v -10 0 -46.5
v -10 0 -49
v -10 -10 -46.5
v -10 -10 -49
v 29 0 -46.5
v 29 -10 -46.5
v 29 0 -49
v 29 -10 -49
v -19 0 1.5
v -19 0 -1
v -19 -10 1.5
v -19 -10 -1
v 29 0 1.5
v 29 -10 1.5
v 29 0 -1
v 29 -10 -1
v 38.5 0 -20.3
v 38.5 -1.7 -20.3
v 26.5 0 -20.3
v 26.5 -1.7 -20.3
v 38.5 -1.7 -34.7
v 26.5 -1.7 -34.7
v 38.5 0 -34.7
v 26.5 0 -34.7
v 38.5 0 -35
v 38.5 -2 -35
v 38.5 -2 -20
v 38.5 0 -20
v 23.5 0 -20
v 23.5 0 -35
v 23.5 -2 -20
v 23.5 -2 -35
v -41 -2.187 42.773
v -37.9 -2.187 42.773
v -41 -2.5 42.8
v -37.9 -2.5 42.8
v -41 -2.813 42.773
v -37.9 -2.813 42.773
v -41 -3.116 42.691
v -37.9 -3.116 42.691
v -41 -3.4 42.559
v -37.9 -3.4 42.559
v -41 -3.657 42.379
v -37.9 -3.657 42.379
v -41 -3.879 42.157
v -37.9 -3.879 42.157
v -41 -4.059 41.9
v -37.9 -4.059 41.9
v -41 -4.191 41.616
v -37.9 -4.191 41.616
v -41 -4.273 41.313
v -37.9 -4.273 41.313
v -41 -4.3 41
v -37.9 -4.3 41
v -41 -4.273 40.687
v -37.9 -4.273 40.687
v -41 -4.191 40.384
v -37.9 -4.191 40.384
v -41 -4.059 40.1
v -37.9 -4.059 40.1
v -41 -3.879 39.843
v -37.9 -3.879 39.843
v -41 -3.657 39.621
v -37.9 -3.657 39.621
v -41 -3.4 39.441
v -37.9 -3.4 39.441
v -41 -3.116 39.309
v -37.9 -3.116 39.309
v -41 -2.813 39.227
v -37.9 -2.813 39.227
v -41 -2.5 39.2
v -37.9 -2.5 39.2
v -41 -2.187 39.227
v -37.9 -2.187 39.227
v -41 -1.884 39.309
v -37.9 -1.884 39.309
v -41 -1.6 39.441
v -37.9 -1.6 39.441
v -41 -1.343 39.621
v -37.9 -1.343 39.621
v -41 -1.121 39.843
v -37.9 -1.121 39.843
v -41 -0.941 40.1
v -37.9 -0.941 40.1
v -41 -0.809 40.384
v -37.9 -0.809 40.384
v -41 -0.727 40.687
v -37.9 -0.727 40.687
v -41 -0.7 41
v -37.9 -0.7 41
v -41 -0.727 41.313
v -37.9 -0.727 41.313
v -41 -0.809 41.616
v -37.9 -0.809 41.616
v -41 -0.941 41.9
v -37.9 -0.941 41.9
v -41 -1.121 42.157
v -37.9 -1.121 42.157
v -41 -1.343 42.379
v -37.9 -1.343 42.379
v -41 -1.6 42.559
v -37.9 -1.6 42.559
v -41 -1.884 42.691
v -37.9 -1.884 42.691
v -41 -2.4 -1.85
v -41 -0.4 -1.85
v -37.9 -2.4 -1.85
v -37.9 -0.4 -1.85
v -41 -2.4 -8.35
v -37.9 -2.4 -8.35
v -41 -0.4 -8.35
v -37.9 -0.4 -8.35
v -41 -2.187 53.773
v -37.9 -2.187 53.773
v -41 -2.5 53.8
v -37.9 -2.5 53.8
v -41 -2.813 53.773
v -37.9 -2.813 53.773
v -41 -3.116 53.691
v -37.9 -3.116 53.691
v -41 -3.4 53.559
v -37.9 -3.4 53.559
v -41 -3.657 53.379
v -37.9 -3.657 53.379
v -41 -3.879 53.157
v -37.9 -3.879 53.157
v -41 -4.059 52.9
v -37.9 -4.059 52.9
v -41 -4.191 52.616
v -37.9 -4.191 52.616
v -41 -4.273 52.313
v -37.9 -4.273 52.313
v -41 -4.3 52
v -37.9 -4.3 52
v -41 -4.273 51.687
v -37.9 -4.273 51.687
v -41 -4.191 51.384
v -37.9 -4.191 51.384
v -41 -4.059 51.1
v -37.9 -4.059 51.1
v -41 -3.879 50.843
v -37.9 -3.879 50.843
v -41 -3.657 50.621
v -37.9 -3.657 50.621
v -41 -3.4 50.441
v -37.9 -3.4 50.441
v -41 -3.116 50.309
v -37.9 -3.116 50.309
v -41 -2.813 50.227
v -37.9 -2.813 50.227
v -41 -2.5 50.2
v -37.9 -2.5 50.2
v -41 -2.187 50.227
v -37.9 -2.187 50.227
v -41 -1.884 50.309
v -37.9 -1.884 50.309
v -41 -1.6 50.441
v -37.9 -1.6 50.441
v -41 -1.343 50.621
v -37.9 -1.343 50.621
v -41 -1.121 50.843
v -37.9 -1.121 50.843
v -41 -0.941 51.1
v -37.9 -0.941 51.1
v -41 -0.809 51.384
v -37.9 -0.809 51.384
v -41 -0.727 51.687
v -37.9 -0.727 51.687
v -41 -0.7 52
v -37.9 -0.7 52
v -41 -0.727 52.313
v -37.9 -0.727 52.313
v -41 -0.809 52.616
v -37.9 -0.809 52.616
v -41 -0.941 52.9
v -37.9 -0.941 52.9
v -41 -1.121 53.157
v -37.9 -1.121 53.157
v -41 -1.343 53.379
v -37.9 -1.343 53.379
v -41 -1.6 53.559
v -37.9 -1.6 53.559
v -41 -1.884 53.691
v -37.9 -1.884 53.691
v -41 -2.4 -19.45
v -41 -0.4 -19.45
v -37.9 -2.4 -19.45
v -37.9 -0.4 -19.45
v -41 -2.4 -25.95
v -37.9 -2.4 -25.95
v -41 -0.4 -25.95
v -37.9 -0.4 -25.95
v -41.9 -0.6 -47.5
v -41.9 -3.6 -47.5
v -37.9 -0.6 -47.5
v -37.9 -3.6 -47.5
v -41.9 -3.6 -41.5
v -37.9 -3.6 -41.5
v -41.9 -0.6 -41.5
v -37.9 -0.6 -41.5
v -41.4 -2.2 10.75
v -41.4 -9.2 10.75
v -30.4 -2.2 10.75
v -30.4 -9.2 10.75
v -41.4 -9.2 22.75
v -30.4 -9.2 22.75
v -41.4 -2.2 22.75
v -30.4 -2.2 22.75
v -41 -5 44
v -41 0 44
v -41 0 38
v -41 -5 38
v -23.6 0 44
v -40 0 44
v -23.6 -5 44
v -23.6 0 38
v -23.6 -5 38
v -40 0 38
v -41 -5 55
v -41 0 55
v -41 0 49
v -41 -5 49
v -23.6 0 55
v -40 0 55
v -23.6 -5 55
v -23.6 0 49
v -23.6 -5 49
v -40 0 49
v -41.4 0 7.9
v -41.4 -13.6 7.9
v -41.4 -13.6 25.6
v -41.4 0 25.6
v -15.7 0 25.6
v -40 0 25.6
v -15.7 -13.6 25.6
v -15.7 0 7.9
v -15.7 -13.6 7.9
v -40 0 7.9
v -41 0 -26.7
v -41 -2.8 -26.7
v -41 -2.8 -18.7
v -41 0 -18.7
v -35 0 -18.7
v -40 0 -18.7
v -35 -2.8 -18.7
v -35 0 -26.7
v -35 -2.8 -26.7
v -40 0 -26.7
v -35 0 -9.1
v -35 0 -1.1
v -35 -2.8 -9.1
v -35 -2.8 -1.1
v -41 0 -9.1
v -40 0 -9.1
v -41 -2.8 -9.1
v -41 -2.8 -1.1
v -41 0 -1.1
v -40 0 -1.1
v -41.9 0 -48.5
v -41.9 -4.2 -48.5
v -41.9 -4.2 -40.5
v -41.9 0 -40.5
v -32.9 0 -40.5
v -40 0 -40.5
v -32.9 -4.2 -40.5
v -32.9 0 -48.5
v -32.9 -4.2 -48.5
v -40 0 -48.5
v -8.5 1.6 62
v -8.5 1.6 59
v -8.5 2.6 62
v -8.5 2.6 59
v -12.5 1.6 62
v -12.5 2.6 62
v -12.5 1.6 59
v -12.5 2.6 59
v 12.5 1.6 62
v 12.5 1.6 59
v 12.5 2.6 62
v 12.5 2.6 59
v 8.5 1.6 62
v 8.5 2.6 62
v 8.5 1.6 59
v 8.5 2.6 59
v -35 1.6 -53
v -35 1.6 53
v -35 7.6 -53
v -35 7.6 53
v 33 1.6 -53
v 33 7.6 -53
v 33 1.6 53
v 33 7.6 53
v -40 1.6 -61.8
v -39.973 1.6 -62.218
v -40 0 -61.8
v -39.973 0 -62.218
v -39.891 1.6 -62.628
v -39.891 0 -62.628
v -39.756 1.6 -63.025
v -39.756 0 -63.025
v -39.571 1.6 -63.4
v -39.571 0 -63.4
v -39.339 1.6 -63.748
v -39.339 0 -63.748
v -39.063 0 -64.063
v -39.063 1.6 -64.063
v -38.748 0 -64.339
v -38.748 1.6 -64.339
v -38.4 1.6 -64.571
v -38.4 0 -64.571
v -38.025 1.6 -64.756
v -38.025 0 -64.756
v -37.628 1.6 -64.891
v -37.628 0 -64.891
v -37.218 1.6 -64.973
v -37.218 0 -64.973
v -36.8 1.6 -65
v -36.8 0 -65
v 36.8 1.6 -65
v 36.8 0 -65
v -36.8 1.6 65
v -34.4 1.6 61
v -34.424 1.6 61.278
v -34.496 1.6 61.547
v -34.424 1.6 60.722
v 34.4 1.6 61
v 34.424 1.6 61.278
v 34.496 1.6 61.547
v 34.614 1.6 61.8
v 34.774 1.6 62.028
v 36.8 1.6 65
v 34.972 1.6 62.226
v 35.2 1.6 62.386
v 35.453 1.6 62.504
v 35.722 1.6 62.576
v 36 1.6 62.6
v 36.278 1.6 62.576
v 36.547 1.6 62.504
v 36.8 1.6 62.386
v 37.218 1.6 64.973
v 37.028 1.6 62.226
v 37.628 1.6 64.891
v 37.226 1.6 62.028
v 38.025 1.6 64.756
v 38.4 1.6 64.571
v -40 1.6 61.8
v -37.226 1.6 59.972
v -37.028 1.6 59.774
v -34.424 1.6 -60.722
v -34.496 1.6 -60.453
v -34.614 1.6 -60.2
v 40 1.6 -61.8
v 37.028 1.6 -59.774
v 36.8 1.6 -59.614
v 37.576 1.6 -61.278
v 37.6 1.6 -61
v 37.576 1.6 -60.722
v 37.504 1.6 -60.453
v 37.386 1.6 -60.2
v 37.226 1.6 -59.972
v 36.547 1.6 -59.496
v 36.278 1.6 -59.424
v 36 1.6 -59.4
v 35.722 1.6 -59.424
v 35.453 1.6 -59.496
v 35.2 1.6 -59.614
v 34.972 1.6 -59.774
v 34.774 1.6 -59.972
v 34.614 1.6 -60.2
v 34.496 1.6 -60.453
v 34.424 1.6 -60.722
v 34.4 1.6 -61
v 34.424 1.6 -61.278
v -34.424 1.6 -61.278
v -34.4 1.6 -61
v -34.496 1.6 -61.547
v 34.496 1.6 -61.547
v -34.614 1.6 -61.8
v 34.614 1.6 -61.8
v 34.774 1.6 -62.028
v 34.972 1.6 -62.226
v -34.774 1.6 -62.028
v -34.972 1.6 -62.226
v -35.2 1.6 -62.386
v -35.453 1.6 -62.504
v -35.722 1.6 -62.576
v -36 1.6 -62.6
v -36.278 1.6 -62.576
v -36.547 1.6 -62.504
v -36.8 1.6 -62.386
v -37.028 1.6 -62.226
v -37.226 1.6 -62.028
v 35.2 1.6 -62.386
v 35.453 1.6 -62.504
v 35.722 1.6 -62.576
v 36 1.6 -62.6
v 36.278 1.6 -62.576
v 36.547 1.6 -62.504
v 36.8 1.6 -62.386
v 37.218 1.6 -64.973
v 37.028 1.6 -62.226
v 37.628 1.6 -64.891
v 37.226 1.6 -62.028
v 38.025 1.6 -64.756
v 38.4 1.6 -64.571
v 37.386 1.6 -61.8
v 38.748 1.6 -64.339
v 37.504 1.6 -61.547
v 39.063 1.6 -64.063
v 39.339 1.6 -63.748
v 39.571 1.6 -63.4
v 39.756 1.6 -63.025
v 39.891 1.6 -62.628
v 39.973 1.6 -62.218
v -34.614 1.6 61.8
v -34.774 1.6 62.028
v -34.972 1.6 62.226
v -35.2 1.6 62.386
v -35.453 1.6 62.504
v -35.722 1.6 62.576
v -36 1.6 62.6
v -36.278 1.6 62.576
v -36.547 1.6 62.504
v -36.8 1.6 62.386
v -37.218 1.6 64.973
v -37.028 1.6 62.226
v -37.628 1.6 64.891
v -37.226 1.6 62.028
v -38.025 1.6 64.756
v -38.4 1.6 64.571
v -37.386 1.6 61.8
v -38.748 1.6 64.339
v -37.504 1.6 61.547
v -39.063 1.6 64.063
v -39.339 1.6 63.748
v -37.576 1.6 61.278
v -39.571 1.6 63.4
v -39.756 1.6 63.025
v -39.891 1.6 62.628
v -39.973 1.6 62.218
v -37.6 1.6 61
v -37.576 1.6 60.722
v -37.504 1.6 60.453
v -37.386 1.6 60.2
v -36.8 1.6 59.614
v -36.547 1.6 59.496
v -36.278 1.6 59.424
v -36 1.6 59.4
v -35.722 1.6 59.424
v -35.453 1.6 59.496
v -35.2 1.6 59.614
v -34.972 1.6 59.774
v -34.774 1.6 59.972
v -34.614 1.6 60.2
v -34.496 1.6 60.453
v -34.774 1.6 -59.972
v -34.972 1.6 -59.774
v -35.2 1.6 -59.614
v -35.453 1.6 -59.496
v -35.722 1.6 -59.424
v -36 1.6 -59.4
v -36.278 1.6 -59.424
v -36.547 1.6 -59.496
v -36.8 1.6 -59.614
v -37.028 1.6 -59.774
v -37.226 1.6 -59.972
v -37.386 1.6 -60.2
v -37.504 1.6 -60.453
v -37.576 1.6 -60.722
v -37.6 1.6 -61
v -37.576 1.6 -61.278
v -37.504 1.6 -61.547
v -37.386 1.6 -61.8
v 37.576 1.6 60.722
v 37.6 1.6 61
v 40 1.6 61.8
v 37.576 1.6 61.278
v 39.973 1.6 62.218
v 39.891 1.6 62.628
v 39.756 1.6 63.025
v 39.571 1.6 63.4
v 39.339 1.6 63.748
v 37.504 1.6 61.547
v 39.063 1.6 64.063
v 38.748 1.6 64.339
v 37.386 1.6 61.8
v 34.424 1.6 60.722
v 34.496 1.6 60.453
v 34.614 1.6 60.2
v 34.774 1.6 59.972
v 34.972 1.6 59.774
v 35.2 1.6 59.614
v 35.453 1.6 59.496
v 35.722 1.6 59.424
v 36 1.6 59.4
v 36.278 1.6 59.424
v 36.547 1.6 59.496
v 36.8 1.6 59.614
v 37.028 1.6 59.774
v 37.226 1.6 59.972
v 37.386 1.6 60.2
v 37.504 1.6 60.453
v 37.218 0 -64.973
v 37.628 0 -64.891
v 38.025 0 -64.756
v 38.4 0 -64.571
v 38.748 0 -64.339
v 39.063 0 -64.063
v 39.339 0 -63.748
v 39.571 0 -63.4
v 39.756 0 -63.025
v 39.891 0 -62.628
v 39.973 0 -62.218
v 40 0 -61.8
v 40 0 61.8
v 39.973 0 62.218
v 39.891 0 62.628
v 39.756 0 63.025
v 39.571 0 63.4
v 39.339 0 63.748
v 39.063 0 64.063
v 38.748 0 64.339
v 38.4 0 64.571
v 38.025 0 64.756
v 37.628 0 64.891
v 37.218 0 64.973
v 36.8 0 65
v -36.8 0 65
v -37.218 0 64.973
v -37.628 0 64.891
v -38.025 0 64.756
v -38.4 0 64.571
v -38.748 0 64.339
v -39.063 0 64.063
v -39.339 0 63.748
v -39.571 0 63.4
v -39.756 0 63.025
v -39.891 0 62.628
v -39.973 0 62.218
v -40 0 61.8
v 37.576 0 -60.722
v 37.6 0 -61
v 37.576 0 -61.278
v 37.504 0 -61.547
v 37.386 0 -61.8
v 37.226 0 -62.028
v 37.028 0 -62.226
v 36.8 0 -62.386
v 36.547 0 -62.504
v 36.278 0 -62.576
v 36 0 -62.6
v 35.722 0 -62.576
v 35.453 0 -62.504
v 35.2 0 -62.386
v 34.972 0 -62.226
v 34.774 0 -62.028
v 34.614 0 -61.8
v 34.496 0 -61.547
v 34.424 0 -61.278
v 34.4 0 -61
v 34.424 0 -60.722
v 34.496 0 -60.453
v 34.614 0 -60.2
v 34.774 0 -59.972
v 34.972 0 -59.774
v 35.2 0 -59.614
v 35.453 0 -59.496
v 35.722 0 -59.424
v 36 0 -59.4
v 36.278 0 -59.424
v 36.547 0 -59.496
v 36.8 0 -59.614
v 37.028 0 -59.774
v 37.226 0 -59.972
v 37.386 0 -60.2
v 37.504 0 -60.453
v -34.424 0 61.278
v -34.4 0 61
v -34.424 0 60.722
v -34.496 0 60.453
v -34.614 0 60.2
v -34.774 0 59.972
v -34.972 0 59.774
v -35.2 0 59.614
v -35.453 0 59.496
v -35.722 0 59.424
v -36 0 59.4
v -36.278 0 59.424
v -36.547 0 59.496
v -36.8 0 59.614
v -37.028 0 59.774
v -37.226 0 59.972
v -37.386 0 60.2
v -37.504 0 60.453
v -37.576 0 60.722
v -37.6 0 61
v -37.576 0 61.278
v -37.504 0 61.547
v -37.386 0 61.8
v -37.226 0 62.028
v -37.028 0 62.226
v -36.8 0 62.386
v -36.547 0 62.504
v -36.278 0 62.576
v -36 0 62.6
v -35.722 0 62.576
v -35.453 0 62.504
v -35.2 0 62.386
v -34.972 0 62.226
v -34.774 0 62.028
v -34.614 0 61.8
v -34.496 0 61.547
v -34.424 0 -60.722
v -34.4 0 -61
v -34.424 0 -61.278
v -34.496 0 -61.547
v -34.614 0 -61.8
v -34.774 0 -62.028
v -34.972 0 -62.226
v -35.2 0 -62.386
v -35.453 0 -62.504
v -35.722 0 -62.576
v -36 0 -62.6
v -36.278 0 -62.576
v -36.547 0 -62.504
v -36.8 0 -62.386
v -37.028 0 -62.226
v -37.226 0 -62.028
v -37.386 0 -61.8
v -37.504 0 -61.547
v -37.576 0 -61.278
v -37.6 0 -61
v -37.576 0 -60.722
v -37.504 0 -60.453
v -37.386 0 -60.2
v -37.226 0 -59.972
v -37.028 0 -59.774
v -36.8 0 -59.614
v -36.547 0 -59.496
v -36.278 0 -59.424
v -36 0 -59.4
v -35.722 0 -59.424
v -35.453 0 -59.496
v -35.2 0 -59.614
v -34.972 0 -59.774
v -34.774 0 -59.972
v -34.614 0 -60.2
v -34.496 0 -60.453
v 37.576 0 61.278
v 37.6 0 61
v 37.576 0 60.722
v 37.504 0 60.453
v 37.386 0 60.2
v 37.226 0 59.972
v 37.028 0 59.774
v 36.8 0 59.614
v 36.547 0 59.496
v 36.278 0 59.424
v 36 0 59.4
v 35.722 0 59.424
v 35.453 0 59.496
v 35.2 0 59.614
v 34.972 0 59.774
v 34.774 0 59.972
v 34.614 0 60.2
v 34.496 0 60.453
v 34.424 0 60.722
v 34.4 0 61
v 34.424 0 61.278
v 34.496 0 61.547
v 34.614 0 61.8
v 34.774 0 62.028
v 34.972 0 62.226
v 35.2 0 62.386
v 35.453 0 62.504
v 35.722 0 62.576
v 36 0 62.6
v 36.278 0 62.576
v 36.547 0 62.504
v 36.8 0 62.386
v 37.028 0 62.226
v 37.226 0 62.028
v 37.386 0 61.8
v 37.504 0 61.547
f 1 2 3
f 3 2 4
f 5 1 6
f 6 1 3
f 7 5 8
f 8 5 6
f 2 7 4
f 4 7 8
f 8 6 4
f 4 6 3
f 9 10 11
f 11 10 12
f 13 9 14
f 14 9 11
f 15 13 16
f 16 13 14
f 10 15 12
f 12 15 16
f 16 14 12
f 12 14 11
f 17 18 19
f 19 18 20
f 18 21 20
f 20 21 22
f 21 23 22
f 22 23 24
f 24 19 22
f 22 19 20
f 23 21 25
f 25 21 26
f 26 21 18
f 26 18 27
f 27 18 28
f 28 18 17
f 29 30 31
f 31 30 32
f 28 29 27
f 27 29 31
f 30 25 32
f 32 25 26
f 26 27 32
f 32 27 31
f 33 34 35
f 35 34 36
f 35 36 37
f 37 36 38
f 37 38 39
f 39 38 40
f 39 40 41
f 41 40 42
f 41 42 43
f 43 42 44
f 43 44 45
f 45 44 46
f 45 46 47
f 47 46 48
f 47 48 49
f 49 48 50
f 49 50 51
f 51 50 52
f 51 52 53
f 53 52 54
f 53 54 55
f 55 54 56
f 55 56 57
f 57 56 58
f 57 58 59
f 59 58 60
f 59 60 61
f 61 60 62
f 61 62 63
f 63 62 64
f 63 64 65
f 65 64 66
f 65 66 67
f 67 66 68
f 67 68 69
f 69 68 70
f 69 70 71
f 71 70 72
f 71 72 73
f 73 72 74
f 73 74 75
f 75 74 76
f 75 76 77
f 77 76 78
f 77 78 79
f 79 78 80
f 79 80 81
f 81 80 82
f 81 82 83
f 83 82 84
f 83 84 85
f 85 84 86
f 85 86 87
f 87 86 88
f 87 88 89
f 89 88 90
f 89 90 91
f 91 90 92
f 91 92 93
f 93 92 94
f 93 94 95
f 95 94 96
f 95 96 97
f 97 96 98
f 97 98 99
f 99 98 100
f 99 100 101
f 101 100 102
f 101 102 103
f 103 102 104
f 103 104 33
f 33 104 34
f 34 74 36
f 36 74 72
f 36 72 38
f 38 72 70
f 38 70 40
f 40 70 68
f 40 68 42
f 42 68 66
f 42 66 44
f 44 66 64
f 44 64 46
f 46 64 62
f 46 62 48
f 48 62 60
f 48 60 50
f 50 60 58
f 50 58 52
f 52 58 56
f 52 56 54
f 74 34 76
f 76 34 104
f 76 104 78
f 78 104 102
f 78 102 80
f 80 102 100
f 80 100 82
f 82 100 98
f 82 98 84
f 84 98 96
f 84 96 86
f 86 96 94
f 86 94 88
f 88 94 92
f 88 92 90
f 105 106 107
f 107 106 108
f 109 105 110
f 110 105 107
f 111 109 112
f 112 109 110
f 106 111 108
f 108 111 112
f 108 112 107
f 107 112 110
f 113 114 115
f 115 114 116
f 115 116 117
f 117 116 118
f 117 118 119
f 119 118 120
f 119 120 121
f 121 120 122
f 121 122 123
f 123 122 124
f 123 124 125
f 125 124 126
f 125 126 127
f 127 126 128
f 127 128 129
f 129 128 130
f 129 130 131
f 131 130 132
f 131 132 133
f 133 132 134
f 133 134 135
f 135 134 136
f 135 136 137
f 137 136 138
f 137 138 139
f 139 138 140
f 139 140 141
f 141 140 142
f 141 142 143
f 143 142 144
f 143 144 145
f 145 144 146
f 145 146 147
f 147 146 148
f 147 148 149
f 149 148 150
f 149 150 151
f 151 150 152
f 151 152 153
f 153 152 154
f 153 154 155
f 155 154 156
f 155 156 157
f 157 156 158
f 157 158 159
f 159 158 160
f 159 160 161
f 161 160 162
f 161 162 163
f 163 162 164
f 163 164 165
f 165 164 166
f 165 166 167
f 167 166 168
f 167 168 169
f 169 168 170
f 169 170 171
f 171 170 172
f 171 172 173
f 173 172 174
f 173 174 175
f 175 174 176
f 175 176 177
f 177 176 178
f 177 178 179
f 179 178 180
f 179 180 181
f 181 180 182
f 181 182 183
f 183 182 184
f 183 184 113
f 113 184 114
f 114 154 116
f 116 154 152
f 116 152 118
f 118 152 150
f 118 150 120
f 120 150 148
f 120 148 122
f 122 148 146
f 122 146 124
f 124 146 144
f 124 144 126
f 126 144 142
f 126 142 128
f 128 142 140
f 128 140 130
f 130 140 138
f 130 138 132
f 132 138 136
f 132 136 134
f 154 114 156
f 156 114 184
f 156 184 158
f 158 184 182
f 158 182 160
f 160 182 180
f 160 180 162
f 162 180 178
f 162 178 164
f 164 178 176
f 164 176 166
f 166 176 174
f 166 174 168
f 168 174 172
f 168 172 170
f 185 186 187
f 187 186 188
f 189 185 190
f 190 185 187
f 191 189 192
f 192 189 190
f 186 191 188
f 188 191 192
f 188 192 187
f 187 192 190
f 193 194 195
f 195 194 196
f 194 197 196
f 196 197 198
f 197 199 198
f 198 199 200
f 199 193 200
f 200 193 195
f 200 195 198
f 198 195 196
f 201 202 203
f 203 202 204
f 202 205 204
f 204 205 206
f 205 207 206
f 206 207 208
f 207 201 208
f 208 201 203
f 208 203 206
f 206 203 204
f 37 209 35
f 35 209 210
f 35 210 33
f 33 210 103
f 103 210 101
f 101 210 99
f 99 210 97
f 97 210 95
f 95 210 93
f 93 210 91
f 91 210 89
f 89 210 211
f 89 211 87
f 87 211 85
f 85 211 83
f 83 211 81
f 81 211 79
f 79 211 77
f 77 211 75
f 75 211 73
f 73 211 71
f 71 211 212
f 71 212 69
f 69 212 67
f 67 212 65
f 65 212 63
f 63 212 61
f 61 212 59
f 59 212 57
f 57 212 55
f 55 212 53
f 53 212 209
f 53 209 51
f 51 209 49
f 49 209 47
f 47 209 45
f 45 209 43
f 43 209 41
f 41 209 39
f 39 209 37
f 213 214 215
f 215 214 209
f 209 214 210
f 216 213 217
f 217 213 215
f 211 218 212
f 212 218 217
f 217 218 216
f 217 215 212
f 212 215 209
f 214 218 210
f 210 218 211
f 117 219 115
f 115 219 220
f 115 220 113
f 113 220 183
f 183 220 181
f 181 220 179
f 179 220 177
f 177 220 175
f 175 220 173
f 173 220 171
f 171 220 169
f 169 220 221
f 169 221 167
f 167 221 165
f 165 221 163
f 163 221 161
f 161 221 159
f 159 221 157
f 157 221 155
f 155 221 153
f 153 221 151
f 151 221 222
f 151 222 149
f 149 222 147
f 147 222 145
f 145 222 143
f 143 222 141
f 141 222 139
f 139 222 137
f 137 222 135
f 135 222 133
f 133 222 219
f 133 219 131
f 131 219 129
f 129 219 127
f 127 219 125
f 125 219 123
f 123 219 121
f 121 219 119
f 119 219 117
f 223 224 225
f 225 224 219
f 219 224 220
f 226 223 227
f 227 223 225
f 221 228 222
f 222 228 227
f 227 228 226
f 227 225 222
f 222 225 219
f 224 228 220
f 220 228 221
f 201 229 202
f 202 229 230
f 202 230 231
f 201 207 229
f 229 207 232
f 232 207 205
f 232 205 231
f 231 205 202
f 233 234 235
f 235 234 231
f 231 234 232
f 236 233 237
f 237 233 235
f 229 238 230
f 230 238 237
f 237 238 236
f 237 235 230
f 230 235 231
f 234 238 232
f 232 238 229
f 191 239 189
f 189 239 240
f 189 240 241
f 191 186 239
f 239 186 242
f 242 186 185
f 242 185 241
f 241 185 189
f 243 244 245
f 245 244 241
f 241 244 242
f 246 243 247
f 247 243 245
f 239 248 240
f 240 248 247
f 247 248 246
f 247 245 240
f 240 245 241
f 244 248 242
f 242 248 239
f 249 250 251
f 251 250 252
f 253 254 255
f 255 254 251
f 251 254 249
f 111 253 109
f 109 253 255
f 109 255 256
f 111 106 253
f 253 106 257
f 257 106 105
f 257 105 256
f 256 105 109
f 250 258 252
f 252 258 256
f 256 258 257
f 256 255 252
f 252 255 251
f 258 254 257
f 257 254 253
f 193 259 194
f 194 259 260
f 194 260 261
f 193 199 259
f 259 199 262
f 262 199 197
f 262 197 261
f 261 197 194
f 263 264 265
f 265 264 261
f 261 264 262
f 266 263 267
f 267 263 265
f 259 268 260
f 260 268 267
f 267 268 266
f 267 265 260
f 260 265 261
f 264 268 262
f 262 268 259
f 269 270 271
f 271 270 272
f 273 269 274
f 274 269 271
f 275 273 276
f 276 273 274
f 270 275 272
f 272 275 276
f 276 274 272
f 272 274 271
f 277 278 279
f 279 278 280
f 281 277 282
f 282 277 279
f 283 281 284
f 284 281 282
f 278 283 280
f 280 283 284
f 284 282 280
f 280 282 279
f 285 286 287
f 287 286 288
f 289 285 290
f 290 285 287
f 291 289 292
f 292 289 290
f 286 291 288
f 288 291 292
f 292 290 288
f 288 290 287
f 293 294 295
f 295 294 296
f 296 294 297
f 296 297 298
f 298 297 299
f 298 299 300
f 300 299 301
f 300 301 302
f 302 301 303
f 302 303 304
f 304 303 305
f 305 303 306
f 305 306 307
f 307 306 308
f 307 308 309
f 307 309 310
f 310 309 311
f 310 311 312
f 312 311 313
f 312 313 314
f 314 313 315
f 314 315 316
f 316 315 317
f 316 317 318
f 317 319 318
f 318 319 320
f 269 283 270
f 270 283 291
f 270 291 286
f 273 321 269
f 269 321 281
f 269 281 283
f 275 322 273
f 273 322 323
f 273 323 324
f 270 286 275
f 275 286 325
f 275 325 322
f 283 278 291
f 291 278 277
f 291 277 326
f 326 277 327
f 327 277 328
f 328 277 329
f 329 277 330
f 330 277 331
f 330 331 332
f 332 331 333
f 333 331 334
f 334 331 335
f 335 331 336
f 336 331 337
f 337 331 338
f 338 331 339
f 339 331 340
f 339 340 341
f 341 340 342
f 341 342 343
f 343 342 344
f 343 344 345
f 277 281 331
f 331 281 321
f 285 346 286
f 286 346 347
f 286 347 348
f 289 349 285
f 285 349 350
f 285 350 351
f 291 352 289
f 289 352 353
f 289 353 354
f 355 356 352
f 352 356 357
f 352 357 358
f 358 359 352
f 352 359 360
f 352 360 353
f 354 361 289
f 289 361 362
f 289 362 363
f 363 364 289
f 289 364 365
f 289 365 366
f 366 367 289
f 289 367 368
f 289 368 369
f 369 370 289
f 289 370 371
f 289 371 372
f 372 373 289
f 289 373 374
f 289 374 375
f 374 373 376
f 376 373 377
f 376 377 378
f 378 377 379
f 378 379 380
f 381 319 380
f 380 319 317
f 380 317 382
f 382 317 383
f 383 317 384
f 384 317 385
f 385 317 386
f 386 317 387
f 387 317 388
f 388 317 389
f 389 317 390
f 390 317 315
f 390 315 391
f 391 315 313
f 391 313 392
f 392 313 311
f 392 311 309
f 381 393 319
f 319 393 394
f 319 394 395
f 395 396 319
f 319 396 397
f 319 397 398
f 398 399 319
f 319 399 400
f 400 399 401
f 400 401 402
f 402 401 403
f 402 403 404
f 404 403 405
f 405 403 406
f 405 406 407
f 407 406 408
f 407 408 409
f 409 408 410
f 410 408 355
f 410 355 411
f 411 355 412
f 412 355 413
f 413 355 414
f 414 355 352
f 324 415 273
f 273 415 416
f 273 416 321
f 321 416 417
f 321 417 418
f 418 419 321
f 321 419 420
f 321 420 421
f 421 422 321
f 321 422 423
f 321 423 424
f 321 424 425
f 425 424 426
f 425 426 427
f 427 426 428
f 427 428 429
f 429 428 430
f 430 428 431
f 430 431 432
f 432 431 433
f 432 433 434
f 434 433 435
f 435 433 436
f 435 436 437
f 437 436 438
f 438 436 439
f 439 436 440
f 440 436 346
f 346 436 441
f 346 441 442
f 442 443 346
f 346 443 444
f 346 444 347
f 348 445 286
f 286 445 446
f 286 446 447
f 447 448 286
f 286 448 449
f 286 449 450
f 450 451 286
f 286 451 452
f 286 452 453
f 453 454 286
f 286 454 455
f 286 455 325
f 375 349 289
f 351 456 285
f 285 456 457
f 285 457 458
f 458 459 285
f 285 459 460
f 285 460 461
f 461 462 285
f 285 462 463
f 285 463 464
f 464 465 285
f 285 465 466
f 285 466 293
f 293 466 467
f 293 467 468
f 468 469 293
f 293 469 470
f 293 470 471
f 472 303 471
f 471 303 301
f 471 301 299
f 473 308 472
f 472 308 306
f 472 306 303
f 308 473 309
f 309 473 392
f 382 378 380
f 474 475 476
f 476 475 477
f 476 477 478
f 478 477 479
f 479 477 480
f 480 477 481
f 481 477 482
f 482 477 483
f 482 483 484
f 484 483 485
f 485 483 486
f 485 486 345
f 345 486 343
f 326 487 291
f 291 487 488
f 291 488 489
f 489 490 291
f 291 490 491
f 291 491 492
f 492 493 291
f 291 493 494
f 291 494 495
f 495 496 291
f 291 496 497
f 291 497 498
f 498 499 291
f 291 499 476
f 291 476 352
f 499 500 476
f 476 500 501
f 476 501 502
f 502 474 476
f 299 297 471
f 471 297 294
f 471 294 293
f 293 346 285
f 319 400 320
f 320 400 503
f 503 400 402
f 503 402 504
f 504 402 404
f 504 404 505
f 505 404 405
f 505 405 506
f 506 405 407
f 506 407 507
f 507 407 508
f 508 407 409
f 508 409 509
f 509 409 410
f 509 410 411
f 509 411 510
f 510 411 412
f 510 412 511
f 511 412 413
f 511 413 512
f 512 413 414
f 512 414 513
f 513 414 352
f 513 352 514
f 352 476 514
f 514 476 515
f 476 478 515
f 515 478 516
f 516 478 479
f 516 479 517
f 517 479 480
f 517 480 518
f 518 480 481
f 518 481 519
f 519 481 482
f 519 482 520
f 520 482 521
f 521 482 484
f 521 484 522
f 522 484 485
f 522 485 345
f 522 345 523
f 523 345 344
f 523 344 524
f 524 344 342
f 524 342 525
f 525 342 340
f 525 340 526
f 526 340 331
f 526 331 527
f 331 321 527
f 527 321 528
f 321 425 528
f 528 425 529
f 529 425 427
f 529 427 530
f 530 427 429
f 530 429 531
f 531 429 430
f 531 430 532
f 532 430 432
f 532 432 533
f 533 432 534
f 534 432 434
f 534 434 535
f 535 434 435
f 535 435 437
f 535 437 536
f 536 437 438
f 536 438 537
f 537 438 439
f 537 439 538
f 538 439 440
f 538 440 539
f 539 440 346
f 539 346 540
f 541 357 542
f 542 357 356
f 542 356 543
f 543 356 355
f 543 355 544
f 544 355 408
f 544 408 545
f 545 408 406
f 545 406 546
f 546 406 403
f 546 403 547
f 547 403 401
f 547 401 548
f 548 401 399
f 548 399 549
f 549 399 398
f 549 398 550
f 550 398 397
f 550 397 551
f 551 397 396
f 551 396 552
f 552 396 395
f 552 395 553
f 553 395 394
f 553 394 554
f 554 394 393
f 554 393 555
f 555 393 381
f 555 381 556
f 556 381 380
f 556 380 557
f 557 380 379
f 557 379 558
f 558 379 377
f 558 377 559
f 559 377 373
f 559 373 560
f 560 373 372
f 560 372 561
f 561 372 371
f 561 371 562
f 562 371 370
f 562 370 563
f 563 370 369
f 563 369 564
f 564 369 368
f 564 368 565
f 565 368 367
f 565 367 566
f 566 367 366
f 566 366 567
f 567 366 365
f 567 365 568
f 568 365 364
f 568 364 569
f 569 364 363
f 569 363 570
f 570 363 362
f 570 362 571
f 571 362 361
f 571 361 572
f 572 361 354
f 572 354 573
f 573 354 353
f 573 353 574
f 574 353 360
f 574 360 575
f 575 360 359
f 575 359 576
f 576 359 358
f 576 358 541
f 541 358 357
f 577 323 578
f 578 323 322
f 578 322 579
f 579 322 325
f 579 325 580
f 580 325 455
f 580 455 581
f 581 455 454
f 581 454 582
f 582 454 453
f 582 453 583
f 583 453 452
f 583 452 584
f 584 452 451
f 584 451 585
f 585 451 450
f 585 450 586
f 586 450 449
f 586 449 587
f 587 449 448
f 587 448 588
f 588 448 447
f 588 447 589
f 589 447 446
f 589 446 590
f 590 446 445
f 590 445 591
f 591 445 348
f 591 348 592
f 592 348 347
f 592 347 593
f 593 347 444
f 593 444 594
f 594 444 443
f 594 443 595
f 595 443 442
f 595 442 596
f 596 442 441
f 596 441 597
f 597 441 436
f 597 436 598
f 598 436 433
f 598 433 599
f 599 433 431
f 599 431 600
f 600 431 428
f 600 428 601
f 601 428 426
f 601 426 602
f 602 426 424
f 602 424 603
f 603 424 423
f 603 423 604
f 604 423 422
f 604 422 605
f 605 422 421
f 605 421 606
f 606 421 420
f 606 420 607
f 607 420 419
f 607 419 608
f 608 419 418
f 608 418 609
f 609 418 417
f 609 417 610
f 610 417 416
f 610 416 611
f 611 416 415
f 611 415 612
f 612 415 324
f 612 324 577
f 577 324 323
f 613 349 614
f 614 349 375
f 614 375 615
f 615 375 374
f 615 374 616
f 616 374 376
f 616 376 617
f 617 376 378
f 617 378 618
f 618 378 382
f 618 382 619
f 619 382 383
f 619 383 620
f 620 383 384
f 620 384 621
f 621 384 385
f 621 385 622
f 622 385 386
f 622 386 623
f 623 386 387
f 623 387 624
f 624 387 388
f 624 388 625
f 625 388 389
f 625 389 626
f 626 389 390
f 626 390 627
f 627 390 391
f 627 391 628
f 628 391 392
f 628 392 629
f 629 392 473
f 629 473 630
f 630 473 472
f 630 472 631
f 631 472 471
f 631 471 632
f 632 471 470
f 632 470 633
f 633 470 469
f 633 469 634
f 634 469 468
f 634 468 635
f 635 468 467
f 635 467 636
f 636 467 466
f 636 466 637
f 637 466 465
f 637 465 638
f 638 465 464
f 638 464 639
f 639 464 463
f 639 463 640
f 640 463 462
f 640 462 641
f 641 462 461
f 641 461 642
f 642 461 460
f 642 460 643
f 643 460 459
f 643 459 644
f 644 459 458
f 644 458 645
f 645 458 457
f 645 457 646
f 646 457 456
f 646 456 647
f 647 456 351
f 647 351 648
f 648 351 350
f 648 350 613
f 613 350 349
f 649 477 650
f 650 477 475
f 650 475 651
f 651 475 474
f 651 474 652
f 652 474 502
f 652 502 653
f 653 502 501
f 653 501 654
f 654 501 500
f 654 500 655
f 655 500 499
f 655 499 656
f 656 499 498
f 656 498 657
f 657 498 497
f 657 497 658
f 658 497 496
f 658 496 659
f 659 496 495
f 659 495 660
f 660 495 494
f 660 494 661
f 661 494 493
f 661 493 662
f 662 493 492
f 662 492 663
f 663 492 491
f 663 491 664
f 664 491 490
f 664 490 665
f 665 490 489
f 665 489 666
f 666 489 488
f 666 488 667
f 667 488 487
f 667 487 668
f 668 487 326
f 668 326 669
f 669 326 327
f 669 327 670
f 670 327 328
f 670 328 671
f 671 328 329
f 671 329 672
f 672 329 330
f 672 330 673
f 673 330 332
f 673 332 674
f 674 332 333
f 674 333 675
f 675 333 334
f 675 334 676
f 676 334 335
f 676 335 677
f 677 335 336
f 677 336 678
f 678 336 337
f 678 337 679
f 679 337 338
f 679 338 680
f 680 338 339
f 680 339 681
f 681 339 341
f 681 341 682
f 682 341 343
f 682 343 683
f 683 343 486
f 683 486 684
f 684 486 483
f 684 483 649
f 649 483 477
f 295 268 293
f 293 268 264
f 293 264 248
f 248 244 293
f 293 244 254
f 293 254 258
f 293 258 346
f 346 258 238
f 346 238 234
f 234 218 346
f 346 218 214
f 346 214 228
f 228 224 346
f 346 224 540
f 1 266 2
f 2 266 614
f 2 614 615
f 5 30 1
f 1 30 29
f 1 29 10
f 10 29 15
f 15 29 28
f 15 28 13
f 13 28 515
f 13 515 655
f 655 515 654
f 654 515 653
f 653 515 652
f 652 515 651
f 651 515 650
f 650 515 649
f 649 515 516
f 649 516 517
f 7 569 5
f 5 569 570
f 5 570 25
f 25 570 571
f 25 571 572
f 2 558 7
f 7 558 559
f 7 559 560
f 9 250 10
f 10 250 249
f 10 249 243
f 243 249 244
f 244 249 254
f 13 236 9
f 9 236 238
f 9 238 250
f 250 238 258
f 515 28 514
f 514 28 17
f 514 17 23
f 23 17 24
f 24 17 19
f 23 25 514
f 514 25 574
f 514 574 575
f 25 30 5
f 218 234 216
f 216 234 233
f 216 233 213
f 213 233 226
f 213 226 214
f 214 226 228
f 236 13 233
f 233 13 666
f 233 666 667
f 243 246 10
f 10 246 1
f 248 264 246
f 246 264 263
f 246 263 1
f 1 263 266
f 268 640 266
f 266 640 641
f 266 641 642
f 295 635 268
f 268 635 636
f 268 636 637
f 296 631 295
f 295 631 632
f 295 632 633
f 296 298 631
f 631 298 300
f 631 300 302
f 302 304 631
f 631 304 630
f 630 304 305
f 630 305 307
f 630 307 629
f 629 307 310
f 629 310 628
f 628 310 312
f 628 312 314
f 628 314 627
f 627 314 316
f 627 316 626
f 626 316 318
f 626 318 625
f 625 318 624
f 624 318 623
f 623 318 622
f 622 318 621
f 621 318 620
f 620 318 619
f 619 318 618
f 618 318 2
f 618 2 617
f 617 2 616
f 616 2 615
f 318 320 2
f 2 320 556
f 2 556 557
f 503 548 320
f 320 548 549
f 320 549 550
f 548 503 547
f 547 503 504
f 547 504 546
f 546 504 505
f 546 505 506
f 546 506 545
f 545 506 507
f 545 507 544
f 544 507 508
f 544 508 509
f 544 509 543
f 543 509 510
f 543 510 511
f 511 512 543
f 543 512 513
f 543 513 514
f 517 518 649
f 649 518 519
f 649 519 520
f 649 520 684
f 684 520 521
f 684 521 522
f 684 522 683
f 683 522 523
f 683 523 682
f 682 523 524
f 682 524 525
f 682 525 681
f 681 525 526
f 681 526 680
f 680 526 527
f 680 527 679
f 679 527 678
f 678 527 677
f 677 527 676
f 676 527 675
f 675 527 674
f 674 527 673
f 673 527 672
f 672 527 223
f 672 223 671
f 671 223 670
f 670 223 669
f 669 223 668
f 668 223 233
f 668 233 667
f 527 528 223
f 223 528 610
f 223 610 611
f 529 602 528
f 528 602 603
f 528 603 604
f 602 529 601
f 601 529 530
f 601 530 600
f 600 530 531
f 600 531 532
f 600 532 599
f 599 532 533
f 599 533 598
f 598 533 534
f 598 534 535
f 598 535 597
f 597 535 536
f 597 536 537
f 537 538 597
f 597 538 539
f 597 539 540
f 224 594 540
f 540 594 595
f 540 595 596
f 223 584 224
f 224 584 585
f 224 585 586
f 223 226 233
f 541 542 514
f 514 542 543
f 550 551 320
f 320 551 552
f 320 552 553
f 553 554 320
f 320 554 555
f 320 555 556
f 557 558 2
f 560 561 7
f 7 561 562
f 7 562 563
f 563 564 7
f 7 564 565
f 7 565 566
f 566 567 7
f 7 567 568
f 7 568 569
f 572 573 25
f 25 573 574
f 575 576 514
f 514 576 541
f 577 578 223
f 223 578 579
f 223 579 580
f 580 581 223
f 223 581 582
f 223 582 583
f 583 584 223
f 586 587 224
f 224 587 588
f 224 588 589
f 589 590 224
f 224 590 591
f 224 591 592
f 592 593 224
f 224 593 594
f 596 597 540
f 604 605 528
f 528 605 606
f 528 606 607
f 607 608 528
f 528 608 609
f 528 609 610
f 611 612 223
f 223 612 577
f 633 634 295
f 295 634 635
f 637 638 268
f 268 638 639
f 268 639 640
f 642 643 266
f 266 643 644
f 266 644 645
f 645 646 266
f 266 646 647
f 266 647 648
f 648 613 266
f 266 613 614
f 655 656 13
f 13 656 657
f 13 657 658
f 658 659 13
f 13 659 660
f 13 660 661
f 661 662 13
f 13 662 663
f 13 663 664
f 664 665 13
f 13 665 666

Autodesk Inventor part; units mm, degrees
ref_plane "YZ Plane" through (0, 0, 0) normal (1, 0, 0) x (0, 1, 0)
ref_plane "XZ Plane" through (0, 0, 0) normal (0, 1, 0) x (-1, 0, 0)
ref_plane "XY Plane" through (0, 0, 0) normal (0, 0, 1) x (1, 0, 0)
sketch "Esquisse1" plane through (0, 0, 0) normal (0, 1, 0) x (-1, 0, 0)
  line L0 (40, 65) -> (-40, 65)
  line L1 (-40, 65) -> (-40, -65)
  line L2 (-40, -65) -> (40, -65)
  line L3 (40, -65) -> (40, 65)
  point P0 (0, 0)
  dimension "d0" = 130
  dimension "d1" = 80
  dimension "d2" = 40
  dimension "d3" = 65
extrude "Extrusion1" add sketch "Esquisse1" along normal blind 1.6
sketch "Esquisse2" plane through (0, 1.6, 0) normal (0, 1, 0) x (1, 0, 0)
  circle A0 centre (-36, -61) radius 1.6
  circle A1 centre (-36, 61) radius 1.6
  circle A2 centre (36, 61) radius 1.6
  circle A3 centre (36, -61) radius 1.6
  point P0 (0, 0)
  dimension "d6" = 3.2
  dimension "d7" = 3.2
  dimension "d8" = 3.2
  dimension "d9" = 3.2
  dimension "d10" = 122
  dimension "d11" = 122
  dimension "d12" = 72
  dimension "d13" = 72
  dimension "d14" = 61
  dimension "d15" = 36
  dimension "d16" = 36
  dimension "d17" = 61
extrude "Extrusion2" cut sketch "Esquisse2" against normal blind 1.6
fillet "Congé1" radius 3.2 4 edges at (-40, 0.8, 65) (40, 0.8, 65) (40, 0.8, -65) (-40, 0.8, -65)
sketch "Esquisse3" plane through (0, 1.6, 0) normal (0, 1, 0) x (1, 0, 0)
  line L0 (-35, -53) -> (33, -53)
  line L1 (33, -53) -> (33, 53)
  line L2 (33, 53) -> (-35, 53)
  line L3 (-35, 53) -> (-35, -53)
  line L4 (40, -61.8) -> (40, 61.8) projected
  line L5 (36.8, 65) -> (-36.8, 65) projected
  point P0 (0, 0)
  dimension "d21" = 106
  dimension "d22" = 68
  dimension "d23" = 7
  dimension "d24" = 12
extrude "Extrusion3" add sketch "Esquisse3" along normal blind 6
sketch "Esquisse4" plane through (0, 1.6, 0) normal (0, 1, 0) x (1, 0, 0)
  line L0 (-12.5, -59) -> (-8.5, -59)
  line L1 (-8.5, -59) -> (-8.5, -62)
  line L2 (-8.5, -62) -> (-12.5, -62)
  line L3 (-12.5, -62) -> (-12.5, -59)
  line L4 (8.5, -59) -> (12.5, -59)
  line L5 (12.5, -59) -> (12.5, -62)
  line L6 (12.5, -62) -> (8.5, -62)
  line L7 (8.5, -62) -> (8.5, -59)
  line L8 (-36.8, -65) -> (36.8, -65) projected
  line L9 (40, -61.8) -> (40, 61.8) projected
  point P0 (0, 0)
  dimension "d27" = 4
  dimension "d28" = 3
  dimension "d29" = 6
  dimension "d30" = 6
  dimension "d31" = 4
  dimension "d32" = 17
  dimension "d33" = 27.5
extrude "Extrusion4" add sketch "Esquisse4" along normal blind 1
sketch "Esquisse5" plane through (0, 0, 0) normal (0, -1, 0) x (1, 0, 0)
  line L0 (-41.9, -48.5) -> (-32.9, -48.5)
  line L1 (-32.9, -48.5) -> (-32.9, -40.5)
  line L2 (-32.9, -40.5) -> (-41.9, -40.5)
  line L3 (-41.9, -40.5) -> (-41.9, -48.5)
  line L4 (36.8, -65) -> (-36.8, -65) projected
  line L5 (-40, -61.8) -> (-40, 61.8) projected
  point P0 (0, 0)
  dimension "d36" = 8
  dimension "d37" = 9
  dimension "d38" = 16.5
  dimension "d39" = 1.9
extrude "Extrusion5" add sketch "Esquisse5" along normal blind 4.2
sketch "Esquisse6" plane through (0, 0, 0) normal (0, -1, 0) x (1, 0, 0)
  line L0 (-35, 53) -> (-35, -53) projected
  line L1 (-41, -26.7) -> (-35, -26.7)
  line L2 (-35, -26.7) -> (-35, -18.7)
  line L3 (-35, -18.7) -> (-41, -18.7)
  line L4 (-41, -18.7) -> (-41, -26.7)
  line L5 (-41, -9.1) -> (-35, -9.1)
  line L6 (-35, -9.1) -> (-35, -1.1)
  line L7 (-35, -1.1) -> (-41, -1.1)
  line L8 (-41, -1.1) -> (-41, -9.1)
  line L9 (-32.9, -40.5) -> (-41.9, -40.5) projected
  line L10 (-40, -61.8) -> (-40, 61.8) projected
  point P0 (0, 0)
  dimension "d42" = 8
  dimension "d43" = 8
  dimension "d44" = 6
  dimension "d45" = 13.8
  dimension "d46" = 9.6
  dimension "d47" = 1
extrude "Extrusion6" add sketch "Esquisse6" along normal blind 2.8 contours L0 L5 L10 L7 | L10 L5 L8 L7 | L0 L1 L10 L3 | L10 L1 L4 L3
sketch "Esquisse7" plane through (0, 0, 0) normal (0, -1, 0) x (1, 0, 0)
  line L0 (-41.4, 7.9) -> (-15.7, 7.9)
  line L1 (-15.7, 7.9) -> (-15.7, 25.6)
  line L2 (-15.7, 25.6) -> (-41.4, 25.6)
  line L3 (-41.4, 25.6) -> (-41.4, 7.9)
  line L4 (-35, -1.1) -> (-41, -1.1) projected
  line L5 (-40, -1.1) -> (-40, 61.8) projected
  point P0 (0, 0)
  dimension "d50" = 25.7
  dimension "d51" = 17.7
  dimension "d52" = 9
  dimension "d53" = 1.4
extrude "Extrusion7" add sketch "Esquisse7" along normal blind 13.6
sketch "Esquisse8" plane through (0, 0, 0) normal (0, -1, 0) x (1, 0, 0)
  line L0 (-41, 38) -> (-23.6, 38)
  line L1 (-23.6, 38) -> (-23.6, 44)
  line L2 (-23.6, 44) -> (-41, 44)
  line L3 (-41, 44) -> (-41, 38)
  line L4 (-41, 49) -> (-23.6, 49)
  line L5 (-23.6, 49) -> (-23.6, 55)
  line L6 (-23.6, 55) -> (-41, 55)
  line L7 (-41, 55) -> (-41, 49)
  line L8 (-15.7, 25.6) -> (-41.4, 25.6) projected
  line L9 (-40, 25.6) -> (-40, 61.8) projected
  point P0 (0, 0)
  dimension "d56" = 6
  dimension "d57" = 6
  dimension "d58" = 17.4
  dimension "d59" = 5
  dimension "d60" = 12.4
  dimension "d61" = 1
extrude "Extrusion8" add sketch "Esquisse8" along normal blind 5
sketch "Esquisse9" plane through (-41.4, 0, 7.9) normal (-1, 0, 0) x (0, 0, 1)
  line L0 (2.85, -2.2) -> (14.85, -2.2)
  line L1 (14.85, -2.2) -> (14.85, -9.2)
  line L2 (14.85, -9.2) -> (2.85, -9.2)
  line L3 (2.85, -9.2) -> (2.85, -2.2)
  line L4 (17.7, 0) -> (0, 0) projected
  line L5 (17.7, 0) -> (17.7, -13.6) projected
  line L6 (0, 0) -> (0, -13.6) projected
  point P0 (-7.9, 0)
  dimension "d64" = 12
  dimension "d65" = 7
  dimension "d66" = 2.2
  dimension "d67" = 17.7
  dimension "d68" = 2.85
extrude "Extrusion9" cut sketch "Esquisse9" against normal blind 11
sketch "Esquisse10" plane through (-41.9, 0, -48.5) normal (-1, 0, 0) x (0, 0, 1)
  line L0 (1, -0.6) -> (7, -0.6)
  line L1 (7, -0.6) -> (7, -3.6)
  line L2 (7, -3.6) -> (1, -3.6)
  line L3 (1, -3.6) -> (1, -0.6)
  line L4 (22.55, -0.4) -> (29.05, -0.4)
  line L5 (29.05, -0.4) -> (29.05, -2.4)
  line L6 (29.05, -2.4) -> (22.55, -2.4)
  line L7 (22.55, -2.4) -> (22.55, -0.4)
  line L8 (40.15, -0.4) -> (46.65, -0.4)
  line L9 (46.65, -0.4) -> (46.65, -2.4)
  line L10 (46.65, -2.4) -> (40.15, -2.4)
  line L11 (40.15, -2.4) -> (40.15, -0.4)
  circle A0 centre (89.5, -2.5) radius 1.8
  circle A1 centre (100.5, -2.5) radius 1.8
  line L12 (8, 0) -> (0, 0) projected
  line L13 (8, -4.2) -> (0, -4.2) projected
  line L14 (8, 0) -> (8, -4.2) projected
  line L15 (0, 0) -> (0, -4.2) projected
  line L16 (29.8, 0) -> (21.8, 0) projected
  line L17 (29.8, -2.8) -> (21.8, -2.8) projected
  line L18 (29.8, 0) -> (29.8, -2.8) projected
  line L19 (21.8, 0) -> (21.8, -2.8) projected
  line L20 (47.4, 0) -> (47.4, -2.8) projected
  line L21 (39.4, 0) -> (39.4, -2.8) projected
  line L22 (92.5, 0) -> (92.5, -5) projected
  line L23 (86.5, 0) -> (86.5, -5) projected
  line L24 (92.5, 0) -> (86.5, 0) projected
  line L25 (92.5, -5) -> (86.5, -5) projected
  line L26 (97.5, 0) -> (97.5, -5) projected
  point P0 (48.5, 0)
  dimension "d71" = 3
  dimension "d72" = 2
  dimension "d73" = 2
  dimension "d74" = 6
  dimension "d75" = 6.5
  dimension "d76" = 6.5
  dimension "d77" = 4.2
  dimension "d78" = 8
  dimension "d79" = 2.8
  dimension "d80" = 8
  dimension "d81" = 8
  dimension "d82" = 1
  dimension "d83" = 0.6
  dimension "d84" = 0.75
  dimension "d86" = 0.4
  dimension "d87" = 0.75
  dimension "d88" = 6
  dimension "d89" = 5
  dimension "d90" = 3
  dimension "d91" = 2.5
  dimension "d92" = 3
  dimension "d93" = 2.5
  dimension "d94" = 3.6
  dimension "d95" = 3.6
extrude "Extrusion10" cut sketch "Esquisse10" against normal blind 4 contours L0 L1 L2 L3 | L4 L5 L6 L7 | L8 L9 L10 L11 | A0 | A1
sketch "Esquisse11" plane through (0, 0, 0) normal (0, -1, 0) x (1, 0, 0)
  line L0 (38.5, -35) -> (23.5, -35)
  line L1 (23.5, -35) -> (23.5, -20)
  line L2 (23.5, -20) -> (38.5, -20)
  line L3 (38.5, -20) -> (38.5, -35)
  line L4 (40, 61.8) -> (40, -61.8) projected
  line L5 (36.8, -65) -> (-36.8, -65) projected
  point P0 (0, 0)
  dimension "d98" = 15
  dimension "d99" = 15
  dimension "d100" = 1.5
  dimension "d101" = 30
extrude "Extrusion11" add sketch "Esquisse11" along normal blind 2
sketch "Esquisse13" plane through (38.5, 0, -20) normal (1, 0, 0) x (0, 0, -1)
  line L0 (-1.3, 0) -> (6.7, 0) projected
  line L1 (14.7, -1.7) -> (0.3, -1.7)
  line L2 (0.3, -1.7) -> (0.3, 0)
  line L3 (0.3, 0) -> (14.7, 0)
  line L4 (14.7, 0) -> (14.7, -1.7)
  line L5 (0, 0) -> (0, -2) projected
  line L6 (15, 0) -> (15, -2) projected
  point P0 (-20, 0)
  dimension "d104" = 0.3
  dimension "d106" = 0.3
  dimension "d107" = 0.3
extrude "Extrusion12" cut sketch "Esquisse13" against normal blind 12
sketch "Esquisse14" plane through (0, 0, 0) normal (0, -1, 0) x (1, 0, 0)
  line L0 (-10, -49) -> (29, -49)
  line L1 (29, -49) -> (29, -46.5)
  line L2 (29, -46.5) -> (-10, -46.5)
  line L3 (-10, -46.5) -> (-10, -49)
  line L4 (-19, -1) -> (29, -1)
  line L5 (29, -1) -> (29, 1.5)
  line L6 (29, 1.5) -> (-19, 1.5)
  line L7 (-19, 1.5) -> (-19, -1)
  line L8 (40, 61.8) -> (40, -61.8) projected
  line L9 (36.8, -65) -> (-36.8, -65) projected
  point P0 (0, 0)
  dimension "d110" = 2.5
  dimension "d111" = 2.5
  dimension "d112" = 39
  dimension "d113" = 48
  dimension "d114" = 11
  dimension "d115" = 16
  dimension "d116" = 64
extrude "Extrusion13" add sketch "Esquisse14" along normal blind 10
equation "\"d2\" = 0.5 * d1"
equation "\"d3\" = 0.5 * d0"
equation "\"d14\" = 0.5 * d10"
equation "\"d15\" = 0.5 * d12"
equation "\"d16\" = 0.5 * d12"
equation "\"d17\" = 0.5 * d11"
equation "\"d31\" = d27"
equation "\"d43\" = d42"
equation "\"d57\" = d56"
equation "\"d68\" = -0.5 * d64 + 0.5 * d67"
equation "\"d82\" = -0.5 * d74 + 0.5 * d78"
equation "\"d83\" = -0.5 * d71 + 0.5 * d77"
equation "\"d84\" = -0.5 * d75 + 0.5 * d80"
equation "\"d86\" = -0.5 * d72 + 0.5 * d79"
equation "\"d87\" = -0.5 * d76 + 0.5 * d81"
equation "\"d90\" = 0.5 * d88"
equation "\"d91\" = 0.5 * d89"
equation "\"d92\" = d90"
equation "\"d93\" = d91"
equation "\"d95\" = d94"
equation "\"d106\" = d104"
equation "\"d107\" = d104"
equation "\"d111\" = d110"
properties part number "STM32F746G-Disco"
